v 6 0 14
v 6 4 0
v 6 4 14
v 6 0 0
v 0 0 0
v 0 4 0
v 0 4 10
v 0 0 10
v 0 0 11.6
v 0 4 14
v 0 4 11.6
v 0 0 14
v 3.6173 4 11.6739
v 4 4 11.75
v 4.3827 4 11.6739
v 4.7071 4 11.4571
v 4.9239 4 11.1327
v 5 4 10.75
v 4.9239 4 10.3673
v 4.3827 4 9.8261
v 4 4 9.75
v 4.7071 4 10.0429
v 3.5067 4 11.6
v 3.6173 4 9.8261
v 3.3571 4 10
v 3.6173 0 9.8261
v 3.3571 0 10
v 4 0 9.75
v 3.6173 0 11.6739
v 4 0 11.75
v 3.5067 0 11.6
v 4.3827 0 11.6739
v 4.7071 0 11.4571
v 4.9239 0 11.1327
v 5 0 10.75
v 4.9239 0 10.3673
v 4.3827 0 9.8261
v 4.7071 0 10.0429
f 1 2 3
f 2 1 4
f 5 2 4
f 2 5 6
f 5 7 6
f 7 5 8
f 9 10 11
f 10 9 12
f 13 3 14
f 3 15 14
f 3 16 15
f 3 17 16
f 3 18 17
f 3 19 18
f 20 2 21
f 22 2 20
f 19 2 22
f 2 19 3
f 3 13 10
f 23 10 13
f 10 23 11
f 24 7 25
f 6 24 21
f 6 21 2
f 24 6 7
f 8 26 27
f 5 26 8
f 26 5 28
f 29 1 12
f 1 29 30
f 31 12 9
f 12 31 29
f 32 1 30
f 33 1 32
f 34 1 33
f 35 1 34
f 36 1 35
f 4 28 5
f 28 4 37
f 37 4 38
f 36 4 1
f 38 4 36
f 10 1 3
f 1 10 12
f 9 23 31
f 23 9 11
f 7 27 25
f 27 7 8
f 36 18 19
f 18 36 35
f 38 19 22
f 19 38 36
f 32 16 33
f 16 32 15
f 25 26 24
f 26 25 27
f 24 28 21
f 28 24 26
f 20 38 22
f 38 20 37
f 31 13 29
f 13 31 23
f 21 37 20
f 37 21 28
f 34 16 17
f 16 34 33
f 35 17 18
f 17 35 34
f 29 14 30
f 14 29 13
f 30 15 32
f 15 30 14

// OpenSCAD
$fn = 16;
difference() {
    union() {
        cube([6,4,10]);
        translate([0,0,10]) cube([6,4,4]);
    }
    translate([0,0,10]) cube([4,4,1.6]);
    translate([4,0,10.75]) rotate([-90,0,0]) cylinder(r=1, h=99, center=true);
}
